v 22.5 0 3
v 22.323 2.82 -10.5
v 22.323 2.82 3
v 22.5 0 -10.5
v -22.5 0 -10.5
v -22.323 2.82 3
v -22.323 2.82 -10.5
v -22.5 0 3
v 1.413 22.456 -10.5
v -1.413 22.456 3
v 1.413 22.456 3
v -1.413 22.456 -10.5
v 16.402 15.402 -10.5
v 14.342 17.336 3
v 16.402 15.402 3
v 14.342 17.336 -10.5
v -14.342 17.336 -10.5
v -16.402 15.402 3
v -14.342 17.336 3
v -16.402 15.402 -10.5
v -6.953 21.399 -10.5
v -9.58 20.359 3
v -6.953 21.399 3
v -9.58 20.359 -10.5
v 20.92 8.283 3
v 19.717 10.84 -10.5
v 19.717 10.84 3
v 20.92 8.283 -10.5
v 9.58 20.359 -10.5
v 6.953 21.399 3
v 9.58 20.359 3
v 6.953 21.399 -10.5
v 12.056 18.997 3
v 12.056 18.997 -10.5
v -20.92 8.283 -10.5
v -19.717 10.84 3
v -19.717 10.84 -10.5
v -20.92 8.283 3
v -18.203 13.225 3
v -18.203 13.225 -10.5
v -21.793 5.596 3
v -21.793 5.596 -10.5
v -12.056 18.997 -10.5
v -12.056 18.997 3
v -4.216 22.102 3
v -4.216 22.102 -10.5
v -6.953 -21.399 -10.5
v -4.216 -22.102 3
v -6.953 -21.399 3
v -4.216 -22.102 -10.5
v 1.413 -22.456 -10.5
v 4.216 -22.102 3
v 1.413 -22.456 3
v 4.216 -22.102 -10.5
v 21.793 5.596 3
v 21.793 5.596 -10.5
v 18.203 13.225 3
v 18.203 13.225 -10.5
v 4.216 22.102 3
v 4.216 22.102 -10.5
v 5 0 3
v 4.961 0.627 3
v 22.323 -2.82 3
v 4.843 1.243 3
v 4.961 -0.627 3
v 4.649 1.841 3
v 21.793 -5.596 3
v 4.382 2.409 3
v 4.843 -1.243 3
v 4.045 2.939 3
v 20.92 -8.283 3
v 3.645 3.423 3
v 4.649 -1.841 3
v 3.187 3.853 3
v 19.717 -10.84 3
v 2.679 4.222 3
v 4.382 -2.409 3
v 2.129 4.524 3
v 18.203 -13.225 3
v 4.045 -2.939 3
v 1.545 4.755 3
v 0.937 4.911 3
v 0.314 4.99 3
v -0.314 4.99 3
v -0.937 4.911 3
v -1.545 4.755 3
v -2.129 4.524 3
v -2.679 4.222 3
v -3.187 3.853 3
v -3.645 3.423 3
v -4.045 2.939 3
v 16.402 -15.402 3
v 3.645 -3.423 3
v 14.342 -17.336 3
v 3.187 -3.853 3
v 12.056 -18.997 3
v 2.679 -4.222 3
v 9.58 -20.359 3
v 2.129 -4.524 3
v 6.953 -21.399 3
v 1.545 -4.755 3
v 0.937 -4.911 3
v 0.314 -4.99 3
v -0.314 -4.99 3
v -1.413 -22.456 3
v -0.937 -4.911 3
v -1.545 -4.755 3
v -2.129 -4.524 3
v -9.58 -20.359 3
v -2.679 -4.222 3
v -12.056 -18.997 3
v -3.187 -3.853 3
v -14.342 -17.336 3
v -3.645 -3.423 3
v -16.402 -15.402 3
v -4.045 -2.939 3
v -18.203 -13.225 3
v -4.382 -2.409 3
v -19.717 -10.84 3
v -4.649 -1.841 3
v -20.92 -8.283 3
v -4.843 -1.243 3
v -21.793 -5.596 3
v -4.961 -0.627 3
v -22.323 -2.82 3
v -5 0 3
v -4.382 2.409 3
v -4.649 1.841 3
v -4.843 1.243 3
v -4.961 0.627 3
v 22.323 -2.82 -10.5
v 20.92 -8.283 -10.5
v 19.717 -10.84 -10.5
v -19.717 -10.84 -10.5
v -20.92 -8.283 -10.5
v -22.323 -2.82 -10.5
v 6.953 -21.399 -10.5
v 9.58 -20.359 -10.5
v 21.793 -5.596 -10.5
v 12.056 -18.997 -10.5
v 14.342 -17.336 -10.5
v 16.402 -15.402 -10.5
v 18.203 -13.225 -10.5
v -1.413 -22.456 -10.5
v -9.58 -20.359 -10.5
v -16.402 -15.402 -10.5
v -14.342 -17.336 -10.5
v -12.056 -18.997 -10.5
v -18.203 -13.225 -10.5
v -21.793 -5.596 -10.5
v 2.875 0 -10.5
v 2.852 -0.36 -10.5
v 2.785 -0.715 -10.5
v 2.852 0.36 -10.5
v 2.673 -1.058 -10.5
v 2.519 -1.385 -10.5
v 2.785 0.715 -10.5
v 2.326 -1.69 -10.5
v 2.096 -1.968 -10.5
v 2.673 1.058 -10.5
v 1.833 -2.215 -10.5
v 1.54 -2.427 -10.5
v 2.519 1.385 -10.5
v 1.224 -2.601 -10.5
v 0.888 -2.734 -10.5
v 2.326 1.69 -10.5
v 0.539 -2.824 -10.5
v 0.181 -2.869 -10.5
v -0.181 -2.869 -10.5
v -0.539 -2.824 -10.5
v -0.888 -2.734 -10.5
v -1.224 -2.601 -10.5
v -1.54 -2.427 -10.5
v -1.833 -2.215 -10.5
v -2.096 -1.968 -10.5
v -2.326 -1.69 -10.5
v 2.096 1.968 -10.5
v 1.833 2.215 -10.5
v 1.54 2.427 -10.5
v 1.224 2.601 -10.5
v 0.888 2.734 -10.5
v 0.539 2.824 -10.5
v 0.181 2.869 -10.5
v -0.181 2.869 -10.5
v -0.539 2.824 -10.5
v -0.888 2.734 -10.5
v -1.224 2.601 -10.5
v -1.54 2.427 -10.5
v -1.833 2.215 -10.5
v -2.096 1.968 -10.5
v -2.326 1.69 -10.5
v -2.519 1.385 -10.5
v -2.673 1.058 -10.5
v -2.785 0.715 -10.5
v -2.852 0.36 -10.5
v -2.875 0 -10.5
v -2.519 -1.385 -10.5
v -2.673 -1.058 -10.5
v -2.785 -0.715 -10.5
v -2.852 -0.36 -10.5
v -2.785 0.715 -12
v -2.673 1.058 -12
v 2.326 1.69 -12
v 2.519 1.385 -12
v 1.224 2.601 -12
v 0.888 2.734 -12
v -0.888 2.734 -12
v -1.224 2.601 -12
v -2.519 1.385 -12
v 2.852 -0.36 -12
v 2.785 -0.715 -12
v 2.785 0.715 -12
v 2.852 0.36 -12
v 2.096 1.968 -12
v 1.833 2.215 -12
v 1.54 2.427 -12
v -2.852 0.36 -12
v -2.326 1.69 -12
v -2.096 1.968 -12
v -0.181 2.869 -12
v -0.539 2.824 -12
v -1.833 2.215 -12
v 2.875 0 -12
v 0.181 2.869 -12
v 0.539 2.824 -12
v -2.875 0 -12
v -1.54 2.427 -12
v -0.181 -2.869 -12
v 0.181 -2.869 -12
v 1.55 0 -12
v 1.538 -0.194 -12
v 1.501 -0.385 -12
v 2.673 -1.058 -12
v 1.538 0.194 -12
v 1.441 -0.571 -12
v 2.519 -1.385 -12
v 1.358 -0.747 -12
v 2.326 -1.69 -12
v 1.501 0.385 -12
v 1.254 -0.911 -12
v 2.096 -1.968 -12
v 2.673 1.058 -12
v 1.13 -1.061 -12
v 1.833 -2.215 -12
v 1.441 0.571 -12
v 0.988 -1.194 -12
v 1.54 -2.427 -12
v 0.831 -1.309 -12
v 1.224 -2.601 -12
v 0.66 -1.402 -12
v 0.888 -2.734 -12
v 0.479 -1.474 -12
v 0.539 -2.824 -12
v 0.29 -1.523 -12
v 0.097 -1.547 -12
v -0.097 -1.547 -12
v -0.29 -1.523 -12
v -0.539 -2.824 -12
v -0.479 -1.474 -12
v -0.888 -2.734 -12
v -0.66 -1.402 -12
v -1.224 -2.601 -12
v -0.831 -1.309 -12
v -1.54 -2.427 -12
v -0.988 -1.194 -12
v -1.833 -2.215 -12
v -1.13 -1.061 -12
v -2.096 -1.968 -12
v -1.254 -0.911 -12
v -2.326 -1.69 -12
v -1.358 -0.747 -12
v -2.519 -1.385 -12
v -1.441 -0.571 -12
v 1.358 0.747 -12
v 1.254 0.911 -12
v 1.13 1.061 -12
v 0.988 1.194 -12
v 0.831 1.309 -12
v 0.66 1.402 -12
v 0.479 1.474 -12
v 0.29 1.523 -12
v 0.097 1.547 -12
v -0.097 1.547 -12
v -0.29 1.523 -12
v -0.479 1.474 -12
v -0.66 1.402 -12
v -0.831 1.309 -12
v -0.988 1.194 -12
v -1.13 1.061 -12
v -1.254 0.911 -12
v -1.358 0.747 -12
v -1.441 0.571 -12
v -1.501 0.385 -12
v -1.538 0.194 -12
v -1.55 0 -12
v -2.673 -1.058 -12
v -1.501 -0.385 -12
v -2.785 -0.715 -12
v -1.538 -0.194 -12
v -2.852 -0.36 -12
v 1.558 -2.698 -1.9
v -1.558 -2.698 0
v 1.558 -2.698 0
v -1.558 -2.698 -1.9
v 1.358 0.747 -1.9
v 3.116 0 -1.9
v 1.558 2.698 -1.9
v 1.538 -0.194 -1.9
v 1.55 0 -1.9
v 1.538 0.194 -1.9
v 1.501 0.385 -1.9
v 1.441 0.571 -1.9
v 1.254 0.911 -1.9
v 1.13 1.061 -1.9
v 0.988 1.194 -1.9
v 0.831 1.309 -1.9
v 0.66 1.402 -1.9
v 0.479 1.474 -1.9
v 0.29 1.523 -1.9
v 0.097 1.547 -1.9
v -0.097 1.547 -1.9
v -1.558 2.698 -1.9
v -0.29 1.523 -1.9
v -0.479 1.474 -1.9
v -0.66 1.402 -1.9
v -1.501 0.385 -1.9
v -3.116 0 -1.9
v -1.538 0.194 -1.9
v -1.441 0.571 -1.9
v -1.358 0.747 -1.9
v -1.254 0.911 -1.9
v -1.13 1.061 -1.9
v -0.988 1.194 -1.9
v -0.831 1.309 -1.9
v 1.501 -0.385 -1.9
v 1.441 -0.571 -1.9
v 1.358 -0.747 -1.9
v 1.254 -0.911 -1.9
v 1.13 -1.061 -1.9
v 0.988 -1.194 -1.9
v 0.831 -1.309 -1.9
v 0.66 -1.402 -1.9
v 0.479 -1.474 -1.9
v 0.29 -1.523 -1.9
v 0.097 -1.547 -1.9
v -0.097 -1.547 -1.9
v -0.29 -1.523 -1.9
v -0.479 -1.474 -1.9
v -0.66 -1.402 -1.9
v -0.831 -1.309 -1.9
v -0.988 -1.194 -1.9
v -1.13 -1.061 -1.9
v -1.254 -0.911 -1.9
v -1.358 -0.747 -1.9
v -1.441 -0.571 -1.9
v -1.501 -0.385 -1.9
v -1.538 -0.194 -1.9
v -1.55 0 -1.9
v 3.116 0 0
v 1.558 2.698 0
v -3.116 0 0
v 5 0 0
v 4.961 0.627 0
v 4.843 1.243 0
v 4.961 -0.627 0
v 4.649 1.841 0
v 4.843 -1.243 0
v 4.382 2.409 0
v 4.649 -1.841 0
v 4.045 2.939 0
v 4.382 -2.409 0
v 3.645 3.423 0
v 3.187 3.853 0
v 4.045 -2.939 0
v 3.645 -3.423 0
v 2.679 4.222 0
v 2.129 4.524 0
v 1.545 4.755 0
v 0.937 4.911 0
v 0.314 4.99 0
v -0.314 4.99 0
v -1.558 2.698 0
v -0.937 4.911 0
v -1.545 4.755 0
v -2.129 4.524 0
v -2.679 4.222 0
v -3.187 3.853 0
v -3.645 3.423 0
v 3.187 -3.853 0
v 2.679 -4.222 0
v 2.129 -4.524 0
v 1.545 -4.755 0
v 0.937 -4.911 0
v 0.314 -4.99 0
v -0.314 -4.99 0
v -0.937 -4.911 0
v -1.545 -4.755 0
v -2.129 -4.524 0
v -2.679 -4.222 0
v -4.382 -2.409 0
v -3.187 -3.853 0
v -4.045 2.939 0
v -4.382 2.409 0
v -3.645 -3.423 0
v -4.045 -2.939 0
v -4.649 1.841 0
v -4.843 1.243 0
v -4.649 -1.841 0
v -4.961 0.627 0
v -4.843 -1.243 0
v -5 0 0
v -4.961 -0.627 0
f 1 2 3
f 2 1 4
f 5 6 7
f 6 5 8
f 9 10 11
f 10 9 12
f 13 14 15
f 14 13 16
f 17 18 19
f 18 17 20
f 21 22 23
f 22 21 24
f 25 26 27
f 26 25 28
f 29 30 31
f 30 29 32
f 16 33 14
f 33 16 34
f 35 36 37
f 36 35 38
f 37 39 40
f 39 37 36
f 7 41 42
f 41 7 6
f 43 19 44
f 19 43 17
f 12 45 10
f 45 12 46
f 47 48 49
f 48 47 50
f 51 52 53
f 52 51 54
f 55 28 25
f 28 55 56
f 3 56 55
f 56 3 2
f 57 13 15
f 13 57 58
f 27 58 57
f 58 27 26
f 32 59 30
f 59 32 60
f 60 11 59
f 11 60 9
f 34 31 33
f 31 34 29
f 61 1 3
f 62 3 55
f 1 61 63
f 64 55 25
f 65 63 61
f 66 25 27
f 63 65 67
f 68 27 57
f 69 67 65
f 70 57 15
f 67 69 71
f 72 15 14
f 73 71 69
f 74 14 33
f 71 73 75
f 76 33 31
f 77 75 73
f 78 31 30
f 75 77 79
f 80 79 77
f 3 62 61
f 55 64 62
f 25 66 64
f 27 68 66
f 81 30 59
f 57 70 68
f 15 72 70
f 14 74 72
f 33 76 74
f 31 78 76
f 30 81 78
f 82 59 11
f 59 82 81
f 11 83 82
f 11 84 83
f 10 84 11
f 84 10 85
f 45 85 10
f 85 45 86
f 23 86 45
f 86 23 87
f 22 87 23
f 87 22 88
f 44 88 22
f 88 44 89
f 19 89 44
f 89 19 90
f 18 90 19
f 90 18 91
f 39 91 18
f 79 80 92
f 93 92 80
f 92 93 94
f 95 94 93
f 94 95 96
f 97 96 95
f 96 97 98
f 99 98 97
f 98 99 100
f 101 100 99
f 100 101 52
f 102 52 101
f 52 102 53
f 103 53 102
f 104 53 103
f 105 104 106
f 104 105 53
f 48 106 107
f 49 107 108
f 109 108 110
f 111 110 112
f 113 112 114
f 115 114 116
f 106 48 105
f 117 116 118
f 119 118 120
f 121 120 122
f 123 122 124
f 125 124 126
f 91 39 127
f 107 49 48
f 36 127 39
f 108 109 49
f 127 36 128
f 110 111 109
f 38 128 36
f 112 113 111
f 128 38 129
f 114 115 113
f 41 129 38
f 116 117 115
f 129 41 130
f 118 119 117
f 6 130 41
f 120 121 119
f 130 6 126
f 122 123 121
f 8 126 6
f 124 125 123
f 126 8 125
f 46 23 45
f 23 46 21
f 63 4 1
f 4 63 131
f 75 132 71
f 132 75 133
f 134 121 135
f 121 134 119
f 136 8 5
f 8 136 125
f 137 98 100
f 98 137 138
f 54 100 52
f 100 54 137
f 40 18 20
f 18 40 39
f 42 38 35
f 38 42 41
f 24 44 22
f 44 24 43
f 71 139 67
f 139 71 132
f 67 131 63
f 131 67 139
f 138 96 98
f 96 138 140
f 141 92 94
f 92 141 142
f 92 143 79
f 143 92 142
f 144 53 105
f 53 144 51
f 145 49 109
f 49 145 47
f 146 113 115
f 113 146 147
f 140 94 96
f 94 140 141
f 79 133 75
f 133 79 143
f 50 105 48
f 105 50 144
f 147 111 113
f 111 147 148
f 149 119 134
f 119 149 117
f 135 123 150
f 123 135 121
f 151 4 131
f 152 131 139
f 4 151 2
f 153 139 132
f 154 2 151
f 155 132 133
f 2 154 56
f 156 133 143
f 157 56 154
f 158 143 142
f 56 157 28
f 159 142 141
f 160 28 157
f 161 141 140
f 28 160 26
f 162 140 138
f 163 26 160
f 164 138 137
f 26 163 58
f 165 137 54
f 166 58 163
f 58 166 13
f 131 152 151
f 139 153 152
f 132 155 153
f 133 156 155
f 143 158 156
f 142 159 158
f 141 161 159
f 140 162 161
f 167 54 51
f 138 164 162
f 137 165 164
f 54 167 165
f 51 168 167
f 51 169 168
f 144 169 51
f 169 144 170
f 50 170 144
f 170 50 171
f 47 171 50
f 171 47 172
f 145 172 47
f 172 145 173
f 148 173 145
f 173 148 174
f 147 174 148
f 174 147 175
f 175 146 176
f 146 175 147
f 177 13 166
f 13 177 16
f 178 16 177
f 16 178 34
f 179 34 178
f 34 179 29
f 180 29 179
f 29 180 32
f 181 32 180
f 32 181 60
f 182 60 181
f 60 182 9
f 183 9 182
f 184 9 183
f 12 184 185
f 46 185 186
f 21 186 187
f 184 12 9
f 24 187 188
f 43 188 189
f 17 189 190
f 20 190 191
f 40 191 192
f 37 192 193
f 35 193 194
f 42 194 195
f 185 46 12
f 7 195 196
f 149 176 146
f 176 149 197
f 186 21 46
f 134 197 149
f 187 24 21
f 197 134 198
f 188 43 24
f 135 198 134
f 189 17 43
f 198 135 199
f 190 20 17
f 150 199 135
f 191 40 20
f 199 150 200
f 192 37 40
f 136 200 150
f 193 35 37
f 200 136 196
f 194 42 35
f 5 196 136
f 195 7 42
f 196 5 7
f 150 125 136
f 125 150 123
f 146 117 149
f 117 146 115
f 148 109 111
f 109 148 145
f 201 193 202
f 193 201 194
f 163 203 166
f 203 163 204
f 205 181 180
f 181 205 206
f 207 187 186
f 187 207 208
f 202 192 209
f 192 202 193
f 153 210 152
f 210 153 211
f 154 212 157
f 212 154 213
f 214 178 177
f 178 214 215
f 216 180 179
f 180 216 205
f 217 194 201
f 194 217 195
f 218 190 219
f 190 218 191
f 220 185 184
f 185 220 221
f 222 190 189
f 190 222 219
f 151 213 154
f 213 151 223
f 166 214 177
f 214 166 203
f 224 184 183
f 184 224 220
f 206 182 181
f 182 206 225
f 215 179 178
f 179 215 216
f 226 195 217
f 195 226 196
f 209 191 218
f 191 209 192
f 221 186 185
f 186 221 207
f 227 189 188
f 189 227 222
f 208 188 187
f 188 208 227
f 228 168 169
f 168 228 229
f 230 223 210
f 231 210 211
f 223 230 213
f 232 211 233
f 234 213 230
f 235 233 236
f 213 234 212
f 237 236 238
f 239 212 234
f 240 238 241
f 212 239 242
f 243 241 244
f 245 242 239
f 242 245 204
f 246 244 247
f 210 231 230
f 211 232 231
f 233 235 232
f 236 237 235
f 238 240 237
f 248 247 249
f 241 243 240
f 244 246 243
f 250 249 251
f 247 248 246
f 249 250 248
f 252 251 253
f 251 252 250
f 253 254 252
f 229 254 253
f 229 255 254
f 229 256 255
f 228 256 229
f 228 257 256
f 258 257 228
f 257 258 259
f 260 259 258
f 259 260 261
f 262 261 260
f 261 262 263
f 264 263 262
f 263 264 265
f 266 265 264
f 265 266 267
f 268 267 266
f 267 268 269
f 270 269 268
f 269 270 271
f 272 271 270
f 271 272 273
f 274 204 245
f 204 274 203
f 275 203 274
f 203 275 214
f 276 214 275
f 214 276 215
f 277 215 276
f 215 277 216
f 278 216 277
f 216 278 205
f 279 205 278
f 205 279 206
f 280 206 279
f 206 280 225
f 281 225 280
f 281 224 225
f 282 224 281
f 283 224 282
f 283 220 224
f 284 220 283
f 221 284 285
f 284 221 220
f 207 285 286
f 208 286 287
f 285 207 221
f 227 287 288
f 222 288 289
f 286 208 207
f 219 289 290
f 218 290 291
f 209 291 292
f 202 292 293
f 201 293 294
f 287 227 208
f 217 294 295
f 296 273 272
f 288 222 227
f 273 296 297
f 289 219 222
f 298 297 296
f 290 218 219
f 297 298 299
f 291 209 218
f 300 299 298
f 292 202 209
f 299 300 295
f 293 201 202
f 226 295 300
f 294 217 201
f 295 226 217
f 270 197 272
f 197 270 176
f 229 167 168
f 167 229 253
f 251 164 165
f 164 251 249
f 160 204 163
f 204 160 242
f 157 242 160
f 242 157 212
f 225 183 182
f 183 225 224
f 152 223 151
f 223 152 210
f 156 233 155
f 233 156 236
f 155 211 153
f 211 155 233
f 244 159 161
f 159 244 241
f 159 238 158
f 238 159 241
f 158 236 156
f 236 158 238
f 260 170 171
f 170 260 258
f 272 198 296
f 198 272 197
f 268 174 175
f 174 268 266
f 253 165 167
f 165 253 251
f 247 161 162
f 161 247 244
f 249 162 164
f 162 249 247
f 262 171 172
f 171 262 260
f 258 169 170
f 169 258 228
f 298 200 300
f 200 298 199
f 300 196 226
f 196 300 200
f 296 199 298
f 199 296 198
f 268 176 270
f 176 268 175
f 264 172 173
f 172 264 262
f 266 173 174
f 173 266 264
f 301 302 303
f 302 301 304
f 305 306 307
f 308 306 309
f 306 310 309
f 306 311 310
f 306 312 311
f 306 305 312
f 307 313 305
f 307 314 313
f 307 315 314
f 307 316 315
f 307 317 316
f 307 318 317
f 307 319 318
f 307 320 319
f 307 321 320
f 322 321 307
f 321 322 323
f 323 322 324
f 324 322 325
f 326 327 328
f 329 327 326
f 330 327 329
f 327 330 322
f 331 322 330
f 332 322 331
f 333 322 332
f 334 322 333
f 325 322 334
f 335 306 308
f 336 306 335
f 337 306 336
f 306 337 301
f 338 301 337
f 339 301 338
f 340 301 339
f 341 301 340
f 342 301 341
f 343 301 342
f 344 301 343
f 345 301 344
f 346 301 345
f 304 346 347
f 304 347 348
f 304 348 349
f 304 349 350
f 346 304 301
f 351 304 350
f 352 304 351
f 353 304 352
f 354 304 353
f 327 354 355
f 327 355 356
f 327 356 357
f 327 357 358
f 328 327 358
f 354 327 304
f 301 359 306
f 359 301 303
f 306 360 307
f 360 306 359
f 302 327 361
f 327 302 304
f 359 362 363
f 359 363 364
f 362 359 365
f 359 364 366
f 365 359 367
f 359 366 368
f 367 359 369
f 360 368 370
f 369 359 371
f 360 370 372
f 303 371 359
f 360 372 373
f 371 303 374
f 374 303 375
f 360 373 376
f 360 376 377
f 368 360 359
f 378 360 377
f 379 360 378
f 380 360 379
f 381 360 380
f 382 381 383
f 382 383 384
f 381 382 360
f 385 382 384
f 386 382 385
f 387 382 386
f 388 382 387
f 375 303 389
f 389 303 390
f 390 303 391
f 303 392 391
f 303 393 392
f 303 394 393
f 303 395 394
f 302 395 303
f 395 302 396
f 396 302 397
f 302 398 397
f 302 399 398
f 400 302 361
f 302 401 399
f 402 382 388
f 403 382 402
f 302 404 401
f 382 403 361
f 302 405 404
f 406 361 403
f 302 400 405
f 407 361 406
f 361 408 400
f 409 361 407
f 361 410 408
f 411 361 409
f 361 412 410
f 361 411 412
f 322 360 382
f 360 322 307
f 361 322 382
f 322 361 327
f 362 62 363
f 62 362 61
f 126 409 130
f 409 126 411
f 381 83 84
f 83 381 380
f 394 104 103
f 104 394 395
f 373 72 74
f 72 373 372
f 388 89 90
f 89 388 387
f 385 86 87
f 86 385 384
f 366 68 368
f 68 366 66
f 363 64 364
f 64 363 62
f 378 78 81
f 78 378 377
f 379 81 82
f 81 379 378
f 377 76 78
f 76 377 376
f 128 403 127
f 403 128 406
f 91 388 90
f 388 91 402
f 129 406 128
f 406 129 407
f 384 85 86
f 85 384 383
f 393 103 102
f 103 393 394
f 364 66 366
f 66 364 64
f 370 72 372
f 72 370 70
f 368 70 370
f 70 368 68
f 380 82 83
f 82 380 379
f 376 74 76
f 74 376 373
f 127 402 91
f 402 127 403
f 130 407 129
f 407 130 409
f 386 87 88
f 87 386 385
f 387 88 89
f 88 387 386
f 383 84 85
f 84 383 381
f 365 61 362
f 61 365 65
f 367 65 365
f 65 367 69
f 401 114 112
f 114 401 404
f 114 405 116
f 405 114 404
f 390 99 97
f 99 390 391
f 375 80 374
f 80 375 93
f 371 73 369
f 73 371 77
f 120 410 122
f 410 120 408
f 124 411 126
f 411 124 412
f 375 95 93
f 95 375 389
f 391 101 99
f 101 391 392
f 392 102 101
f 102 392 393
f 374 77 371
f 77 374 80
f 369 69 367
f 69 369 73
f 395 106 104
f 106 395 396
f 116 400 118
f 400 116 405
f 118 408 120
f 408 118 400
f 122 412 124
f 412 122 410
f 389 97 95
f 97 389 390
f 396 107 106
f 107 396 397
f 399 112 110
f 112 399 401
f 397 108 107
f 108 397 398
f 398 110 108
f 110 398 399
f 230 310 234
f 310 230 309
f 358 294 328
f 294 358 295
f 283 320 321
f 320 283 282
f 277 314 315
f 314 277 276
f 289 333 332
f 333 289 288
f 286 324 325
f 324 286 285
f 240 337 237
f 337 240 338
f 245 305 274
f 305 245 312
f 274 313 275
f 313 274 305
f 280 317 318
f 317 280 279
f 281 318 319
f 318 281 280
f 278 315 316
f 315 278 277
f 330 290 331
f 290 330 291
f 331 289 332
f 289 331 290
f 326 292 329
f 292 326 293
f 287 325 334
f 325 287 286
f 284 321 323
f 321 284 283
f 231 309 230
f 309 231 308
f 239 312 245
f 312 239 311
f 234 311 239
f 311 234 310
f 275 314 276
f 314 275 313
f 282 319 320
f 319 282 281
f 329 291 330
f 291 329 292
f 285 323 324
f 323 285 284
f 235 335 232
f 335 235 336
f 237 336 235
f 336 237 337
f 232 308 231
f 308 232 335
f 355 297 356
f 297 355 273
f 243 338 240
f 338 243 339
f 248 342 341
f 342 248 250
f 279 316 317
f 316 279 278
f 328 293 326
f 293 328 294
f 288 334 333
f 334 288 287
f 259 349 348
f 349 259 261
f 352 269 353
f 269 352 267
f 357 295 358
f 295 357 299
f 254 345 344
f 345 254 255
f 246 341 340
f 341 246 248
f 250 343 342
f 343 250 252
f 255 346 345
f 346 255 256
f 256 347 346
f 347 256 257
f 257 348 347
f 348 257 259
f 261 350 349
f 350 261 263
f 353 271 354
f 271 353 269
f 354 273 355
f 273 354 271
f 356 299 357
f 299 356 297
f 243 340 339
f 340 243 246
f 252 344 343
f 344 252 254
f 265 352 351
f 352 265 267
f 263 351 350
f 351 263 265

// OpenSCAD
$fn = 50;


difference() {
	union() {
		translate(v = [0, 0, -10.5000000000]) {
			cylinder(h = 13.5000000000, r = 22.5000000000);
		}
		#translate(v = [0, 0, -12.0000000000]) {
			cylinder(h = 12, r = 2.8750000000);
		}
	}
	union() {
		translate(v = [0, 0, 0]) {
			rotate(a = [0, 0, 0]) {
				difference() {
					union() {
						translate(v = [0, 0, -1.9000000000]) {
							linear_extrude(height = 1.9000000000) {
								polygon(points = [[3.1158000000, 0.0000000000], [1.5579000000, 2.6983619531], [-1.5579000000, 2.6983619531], [-3.1158000000, 0.0000000000], [-1.5579000000, -2.6983619531], [1.5579000000, -2.6983619531]]);
							}
						}
					}
					union();
				}
			}
		}
		#cylinder(h = 3, r = 5.0000000000);
		#translate(v = [0, 0, -100.0000000000]) {
			cylinder(h = 200, r = 1.5500000000);
		}
	}
}
